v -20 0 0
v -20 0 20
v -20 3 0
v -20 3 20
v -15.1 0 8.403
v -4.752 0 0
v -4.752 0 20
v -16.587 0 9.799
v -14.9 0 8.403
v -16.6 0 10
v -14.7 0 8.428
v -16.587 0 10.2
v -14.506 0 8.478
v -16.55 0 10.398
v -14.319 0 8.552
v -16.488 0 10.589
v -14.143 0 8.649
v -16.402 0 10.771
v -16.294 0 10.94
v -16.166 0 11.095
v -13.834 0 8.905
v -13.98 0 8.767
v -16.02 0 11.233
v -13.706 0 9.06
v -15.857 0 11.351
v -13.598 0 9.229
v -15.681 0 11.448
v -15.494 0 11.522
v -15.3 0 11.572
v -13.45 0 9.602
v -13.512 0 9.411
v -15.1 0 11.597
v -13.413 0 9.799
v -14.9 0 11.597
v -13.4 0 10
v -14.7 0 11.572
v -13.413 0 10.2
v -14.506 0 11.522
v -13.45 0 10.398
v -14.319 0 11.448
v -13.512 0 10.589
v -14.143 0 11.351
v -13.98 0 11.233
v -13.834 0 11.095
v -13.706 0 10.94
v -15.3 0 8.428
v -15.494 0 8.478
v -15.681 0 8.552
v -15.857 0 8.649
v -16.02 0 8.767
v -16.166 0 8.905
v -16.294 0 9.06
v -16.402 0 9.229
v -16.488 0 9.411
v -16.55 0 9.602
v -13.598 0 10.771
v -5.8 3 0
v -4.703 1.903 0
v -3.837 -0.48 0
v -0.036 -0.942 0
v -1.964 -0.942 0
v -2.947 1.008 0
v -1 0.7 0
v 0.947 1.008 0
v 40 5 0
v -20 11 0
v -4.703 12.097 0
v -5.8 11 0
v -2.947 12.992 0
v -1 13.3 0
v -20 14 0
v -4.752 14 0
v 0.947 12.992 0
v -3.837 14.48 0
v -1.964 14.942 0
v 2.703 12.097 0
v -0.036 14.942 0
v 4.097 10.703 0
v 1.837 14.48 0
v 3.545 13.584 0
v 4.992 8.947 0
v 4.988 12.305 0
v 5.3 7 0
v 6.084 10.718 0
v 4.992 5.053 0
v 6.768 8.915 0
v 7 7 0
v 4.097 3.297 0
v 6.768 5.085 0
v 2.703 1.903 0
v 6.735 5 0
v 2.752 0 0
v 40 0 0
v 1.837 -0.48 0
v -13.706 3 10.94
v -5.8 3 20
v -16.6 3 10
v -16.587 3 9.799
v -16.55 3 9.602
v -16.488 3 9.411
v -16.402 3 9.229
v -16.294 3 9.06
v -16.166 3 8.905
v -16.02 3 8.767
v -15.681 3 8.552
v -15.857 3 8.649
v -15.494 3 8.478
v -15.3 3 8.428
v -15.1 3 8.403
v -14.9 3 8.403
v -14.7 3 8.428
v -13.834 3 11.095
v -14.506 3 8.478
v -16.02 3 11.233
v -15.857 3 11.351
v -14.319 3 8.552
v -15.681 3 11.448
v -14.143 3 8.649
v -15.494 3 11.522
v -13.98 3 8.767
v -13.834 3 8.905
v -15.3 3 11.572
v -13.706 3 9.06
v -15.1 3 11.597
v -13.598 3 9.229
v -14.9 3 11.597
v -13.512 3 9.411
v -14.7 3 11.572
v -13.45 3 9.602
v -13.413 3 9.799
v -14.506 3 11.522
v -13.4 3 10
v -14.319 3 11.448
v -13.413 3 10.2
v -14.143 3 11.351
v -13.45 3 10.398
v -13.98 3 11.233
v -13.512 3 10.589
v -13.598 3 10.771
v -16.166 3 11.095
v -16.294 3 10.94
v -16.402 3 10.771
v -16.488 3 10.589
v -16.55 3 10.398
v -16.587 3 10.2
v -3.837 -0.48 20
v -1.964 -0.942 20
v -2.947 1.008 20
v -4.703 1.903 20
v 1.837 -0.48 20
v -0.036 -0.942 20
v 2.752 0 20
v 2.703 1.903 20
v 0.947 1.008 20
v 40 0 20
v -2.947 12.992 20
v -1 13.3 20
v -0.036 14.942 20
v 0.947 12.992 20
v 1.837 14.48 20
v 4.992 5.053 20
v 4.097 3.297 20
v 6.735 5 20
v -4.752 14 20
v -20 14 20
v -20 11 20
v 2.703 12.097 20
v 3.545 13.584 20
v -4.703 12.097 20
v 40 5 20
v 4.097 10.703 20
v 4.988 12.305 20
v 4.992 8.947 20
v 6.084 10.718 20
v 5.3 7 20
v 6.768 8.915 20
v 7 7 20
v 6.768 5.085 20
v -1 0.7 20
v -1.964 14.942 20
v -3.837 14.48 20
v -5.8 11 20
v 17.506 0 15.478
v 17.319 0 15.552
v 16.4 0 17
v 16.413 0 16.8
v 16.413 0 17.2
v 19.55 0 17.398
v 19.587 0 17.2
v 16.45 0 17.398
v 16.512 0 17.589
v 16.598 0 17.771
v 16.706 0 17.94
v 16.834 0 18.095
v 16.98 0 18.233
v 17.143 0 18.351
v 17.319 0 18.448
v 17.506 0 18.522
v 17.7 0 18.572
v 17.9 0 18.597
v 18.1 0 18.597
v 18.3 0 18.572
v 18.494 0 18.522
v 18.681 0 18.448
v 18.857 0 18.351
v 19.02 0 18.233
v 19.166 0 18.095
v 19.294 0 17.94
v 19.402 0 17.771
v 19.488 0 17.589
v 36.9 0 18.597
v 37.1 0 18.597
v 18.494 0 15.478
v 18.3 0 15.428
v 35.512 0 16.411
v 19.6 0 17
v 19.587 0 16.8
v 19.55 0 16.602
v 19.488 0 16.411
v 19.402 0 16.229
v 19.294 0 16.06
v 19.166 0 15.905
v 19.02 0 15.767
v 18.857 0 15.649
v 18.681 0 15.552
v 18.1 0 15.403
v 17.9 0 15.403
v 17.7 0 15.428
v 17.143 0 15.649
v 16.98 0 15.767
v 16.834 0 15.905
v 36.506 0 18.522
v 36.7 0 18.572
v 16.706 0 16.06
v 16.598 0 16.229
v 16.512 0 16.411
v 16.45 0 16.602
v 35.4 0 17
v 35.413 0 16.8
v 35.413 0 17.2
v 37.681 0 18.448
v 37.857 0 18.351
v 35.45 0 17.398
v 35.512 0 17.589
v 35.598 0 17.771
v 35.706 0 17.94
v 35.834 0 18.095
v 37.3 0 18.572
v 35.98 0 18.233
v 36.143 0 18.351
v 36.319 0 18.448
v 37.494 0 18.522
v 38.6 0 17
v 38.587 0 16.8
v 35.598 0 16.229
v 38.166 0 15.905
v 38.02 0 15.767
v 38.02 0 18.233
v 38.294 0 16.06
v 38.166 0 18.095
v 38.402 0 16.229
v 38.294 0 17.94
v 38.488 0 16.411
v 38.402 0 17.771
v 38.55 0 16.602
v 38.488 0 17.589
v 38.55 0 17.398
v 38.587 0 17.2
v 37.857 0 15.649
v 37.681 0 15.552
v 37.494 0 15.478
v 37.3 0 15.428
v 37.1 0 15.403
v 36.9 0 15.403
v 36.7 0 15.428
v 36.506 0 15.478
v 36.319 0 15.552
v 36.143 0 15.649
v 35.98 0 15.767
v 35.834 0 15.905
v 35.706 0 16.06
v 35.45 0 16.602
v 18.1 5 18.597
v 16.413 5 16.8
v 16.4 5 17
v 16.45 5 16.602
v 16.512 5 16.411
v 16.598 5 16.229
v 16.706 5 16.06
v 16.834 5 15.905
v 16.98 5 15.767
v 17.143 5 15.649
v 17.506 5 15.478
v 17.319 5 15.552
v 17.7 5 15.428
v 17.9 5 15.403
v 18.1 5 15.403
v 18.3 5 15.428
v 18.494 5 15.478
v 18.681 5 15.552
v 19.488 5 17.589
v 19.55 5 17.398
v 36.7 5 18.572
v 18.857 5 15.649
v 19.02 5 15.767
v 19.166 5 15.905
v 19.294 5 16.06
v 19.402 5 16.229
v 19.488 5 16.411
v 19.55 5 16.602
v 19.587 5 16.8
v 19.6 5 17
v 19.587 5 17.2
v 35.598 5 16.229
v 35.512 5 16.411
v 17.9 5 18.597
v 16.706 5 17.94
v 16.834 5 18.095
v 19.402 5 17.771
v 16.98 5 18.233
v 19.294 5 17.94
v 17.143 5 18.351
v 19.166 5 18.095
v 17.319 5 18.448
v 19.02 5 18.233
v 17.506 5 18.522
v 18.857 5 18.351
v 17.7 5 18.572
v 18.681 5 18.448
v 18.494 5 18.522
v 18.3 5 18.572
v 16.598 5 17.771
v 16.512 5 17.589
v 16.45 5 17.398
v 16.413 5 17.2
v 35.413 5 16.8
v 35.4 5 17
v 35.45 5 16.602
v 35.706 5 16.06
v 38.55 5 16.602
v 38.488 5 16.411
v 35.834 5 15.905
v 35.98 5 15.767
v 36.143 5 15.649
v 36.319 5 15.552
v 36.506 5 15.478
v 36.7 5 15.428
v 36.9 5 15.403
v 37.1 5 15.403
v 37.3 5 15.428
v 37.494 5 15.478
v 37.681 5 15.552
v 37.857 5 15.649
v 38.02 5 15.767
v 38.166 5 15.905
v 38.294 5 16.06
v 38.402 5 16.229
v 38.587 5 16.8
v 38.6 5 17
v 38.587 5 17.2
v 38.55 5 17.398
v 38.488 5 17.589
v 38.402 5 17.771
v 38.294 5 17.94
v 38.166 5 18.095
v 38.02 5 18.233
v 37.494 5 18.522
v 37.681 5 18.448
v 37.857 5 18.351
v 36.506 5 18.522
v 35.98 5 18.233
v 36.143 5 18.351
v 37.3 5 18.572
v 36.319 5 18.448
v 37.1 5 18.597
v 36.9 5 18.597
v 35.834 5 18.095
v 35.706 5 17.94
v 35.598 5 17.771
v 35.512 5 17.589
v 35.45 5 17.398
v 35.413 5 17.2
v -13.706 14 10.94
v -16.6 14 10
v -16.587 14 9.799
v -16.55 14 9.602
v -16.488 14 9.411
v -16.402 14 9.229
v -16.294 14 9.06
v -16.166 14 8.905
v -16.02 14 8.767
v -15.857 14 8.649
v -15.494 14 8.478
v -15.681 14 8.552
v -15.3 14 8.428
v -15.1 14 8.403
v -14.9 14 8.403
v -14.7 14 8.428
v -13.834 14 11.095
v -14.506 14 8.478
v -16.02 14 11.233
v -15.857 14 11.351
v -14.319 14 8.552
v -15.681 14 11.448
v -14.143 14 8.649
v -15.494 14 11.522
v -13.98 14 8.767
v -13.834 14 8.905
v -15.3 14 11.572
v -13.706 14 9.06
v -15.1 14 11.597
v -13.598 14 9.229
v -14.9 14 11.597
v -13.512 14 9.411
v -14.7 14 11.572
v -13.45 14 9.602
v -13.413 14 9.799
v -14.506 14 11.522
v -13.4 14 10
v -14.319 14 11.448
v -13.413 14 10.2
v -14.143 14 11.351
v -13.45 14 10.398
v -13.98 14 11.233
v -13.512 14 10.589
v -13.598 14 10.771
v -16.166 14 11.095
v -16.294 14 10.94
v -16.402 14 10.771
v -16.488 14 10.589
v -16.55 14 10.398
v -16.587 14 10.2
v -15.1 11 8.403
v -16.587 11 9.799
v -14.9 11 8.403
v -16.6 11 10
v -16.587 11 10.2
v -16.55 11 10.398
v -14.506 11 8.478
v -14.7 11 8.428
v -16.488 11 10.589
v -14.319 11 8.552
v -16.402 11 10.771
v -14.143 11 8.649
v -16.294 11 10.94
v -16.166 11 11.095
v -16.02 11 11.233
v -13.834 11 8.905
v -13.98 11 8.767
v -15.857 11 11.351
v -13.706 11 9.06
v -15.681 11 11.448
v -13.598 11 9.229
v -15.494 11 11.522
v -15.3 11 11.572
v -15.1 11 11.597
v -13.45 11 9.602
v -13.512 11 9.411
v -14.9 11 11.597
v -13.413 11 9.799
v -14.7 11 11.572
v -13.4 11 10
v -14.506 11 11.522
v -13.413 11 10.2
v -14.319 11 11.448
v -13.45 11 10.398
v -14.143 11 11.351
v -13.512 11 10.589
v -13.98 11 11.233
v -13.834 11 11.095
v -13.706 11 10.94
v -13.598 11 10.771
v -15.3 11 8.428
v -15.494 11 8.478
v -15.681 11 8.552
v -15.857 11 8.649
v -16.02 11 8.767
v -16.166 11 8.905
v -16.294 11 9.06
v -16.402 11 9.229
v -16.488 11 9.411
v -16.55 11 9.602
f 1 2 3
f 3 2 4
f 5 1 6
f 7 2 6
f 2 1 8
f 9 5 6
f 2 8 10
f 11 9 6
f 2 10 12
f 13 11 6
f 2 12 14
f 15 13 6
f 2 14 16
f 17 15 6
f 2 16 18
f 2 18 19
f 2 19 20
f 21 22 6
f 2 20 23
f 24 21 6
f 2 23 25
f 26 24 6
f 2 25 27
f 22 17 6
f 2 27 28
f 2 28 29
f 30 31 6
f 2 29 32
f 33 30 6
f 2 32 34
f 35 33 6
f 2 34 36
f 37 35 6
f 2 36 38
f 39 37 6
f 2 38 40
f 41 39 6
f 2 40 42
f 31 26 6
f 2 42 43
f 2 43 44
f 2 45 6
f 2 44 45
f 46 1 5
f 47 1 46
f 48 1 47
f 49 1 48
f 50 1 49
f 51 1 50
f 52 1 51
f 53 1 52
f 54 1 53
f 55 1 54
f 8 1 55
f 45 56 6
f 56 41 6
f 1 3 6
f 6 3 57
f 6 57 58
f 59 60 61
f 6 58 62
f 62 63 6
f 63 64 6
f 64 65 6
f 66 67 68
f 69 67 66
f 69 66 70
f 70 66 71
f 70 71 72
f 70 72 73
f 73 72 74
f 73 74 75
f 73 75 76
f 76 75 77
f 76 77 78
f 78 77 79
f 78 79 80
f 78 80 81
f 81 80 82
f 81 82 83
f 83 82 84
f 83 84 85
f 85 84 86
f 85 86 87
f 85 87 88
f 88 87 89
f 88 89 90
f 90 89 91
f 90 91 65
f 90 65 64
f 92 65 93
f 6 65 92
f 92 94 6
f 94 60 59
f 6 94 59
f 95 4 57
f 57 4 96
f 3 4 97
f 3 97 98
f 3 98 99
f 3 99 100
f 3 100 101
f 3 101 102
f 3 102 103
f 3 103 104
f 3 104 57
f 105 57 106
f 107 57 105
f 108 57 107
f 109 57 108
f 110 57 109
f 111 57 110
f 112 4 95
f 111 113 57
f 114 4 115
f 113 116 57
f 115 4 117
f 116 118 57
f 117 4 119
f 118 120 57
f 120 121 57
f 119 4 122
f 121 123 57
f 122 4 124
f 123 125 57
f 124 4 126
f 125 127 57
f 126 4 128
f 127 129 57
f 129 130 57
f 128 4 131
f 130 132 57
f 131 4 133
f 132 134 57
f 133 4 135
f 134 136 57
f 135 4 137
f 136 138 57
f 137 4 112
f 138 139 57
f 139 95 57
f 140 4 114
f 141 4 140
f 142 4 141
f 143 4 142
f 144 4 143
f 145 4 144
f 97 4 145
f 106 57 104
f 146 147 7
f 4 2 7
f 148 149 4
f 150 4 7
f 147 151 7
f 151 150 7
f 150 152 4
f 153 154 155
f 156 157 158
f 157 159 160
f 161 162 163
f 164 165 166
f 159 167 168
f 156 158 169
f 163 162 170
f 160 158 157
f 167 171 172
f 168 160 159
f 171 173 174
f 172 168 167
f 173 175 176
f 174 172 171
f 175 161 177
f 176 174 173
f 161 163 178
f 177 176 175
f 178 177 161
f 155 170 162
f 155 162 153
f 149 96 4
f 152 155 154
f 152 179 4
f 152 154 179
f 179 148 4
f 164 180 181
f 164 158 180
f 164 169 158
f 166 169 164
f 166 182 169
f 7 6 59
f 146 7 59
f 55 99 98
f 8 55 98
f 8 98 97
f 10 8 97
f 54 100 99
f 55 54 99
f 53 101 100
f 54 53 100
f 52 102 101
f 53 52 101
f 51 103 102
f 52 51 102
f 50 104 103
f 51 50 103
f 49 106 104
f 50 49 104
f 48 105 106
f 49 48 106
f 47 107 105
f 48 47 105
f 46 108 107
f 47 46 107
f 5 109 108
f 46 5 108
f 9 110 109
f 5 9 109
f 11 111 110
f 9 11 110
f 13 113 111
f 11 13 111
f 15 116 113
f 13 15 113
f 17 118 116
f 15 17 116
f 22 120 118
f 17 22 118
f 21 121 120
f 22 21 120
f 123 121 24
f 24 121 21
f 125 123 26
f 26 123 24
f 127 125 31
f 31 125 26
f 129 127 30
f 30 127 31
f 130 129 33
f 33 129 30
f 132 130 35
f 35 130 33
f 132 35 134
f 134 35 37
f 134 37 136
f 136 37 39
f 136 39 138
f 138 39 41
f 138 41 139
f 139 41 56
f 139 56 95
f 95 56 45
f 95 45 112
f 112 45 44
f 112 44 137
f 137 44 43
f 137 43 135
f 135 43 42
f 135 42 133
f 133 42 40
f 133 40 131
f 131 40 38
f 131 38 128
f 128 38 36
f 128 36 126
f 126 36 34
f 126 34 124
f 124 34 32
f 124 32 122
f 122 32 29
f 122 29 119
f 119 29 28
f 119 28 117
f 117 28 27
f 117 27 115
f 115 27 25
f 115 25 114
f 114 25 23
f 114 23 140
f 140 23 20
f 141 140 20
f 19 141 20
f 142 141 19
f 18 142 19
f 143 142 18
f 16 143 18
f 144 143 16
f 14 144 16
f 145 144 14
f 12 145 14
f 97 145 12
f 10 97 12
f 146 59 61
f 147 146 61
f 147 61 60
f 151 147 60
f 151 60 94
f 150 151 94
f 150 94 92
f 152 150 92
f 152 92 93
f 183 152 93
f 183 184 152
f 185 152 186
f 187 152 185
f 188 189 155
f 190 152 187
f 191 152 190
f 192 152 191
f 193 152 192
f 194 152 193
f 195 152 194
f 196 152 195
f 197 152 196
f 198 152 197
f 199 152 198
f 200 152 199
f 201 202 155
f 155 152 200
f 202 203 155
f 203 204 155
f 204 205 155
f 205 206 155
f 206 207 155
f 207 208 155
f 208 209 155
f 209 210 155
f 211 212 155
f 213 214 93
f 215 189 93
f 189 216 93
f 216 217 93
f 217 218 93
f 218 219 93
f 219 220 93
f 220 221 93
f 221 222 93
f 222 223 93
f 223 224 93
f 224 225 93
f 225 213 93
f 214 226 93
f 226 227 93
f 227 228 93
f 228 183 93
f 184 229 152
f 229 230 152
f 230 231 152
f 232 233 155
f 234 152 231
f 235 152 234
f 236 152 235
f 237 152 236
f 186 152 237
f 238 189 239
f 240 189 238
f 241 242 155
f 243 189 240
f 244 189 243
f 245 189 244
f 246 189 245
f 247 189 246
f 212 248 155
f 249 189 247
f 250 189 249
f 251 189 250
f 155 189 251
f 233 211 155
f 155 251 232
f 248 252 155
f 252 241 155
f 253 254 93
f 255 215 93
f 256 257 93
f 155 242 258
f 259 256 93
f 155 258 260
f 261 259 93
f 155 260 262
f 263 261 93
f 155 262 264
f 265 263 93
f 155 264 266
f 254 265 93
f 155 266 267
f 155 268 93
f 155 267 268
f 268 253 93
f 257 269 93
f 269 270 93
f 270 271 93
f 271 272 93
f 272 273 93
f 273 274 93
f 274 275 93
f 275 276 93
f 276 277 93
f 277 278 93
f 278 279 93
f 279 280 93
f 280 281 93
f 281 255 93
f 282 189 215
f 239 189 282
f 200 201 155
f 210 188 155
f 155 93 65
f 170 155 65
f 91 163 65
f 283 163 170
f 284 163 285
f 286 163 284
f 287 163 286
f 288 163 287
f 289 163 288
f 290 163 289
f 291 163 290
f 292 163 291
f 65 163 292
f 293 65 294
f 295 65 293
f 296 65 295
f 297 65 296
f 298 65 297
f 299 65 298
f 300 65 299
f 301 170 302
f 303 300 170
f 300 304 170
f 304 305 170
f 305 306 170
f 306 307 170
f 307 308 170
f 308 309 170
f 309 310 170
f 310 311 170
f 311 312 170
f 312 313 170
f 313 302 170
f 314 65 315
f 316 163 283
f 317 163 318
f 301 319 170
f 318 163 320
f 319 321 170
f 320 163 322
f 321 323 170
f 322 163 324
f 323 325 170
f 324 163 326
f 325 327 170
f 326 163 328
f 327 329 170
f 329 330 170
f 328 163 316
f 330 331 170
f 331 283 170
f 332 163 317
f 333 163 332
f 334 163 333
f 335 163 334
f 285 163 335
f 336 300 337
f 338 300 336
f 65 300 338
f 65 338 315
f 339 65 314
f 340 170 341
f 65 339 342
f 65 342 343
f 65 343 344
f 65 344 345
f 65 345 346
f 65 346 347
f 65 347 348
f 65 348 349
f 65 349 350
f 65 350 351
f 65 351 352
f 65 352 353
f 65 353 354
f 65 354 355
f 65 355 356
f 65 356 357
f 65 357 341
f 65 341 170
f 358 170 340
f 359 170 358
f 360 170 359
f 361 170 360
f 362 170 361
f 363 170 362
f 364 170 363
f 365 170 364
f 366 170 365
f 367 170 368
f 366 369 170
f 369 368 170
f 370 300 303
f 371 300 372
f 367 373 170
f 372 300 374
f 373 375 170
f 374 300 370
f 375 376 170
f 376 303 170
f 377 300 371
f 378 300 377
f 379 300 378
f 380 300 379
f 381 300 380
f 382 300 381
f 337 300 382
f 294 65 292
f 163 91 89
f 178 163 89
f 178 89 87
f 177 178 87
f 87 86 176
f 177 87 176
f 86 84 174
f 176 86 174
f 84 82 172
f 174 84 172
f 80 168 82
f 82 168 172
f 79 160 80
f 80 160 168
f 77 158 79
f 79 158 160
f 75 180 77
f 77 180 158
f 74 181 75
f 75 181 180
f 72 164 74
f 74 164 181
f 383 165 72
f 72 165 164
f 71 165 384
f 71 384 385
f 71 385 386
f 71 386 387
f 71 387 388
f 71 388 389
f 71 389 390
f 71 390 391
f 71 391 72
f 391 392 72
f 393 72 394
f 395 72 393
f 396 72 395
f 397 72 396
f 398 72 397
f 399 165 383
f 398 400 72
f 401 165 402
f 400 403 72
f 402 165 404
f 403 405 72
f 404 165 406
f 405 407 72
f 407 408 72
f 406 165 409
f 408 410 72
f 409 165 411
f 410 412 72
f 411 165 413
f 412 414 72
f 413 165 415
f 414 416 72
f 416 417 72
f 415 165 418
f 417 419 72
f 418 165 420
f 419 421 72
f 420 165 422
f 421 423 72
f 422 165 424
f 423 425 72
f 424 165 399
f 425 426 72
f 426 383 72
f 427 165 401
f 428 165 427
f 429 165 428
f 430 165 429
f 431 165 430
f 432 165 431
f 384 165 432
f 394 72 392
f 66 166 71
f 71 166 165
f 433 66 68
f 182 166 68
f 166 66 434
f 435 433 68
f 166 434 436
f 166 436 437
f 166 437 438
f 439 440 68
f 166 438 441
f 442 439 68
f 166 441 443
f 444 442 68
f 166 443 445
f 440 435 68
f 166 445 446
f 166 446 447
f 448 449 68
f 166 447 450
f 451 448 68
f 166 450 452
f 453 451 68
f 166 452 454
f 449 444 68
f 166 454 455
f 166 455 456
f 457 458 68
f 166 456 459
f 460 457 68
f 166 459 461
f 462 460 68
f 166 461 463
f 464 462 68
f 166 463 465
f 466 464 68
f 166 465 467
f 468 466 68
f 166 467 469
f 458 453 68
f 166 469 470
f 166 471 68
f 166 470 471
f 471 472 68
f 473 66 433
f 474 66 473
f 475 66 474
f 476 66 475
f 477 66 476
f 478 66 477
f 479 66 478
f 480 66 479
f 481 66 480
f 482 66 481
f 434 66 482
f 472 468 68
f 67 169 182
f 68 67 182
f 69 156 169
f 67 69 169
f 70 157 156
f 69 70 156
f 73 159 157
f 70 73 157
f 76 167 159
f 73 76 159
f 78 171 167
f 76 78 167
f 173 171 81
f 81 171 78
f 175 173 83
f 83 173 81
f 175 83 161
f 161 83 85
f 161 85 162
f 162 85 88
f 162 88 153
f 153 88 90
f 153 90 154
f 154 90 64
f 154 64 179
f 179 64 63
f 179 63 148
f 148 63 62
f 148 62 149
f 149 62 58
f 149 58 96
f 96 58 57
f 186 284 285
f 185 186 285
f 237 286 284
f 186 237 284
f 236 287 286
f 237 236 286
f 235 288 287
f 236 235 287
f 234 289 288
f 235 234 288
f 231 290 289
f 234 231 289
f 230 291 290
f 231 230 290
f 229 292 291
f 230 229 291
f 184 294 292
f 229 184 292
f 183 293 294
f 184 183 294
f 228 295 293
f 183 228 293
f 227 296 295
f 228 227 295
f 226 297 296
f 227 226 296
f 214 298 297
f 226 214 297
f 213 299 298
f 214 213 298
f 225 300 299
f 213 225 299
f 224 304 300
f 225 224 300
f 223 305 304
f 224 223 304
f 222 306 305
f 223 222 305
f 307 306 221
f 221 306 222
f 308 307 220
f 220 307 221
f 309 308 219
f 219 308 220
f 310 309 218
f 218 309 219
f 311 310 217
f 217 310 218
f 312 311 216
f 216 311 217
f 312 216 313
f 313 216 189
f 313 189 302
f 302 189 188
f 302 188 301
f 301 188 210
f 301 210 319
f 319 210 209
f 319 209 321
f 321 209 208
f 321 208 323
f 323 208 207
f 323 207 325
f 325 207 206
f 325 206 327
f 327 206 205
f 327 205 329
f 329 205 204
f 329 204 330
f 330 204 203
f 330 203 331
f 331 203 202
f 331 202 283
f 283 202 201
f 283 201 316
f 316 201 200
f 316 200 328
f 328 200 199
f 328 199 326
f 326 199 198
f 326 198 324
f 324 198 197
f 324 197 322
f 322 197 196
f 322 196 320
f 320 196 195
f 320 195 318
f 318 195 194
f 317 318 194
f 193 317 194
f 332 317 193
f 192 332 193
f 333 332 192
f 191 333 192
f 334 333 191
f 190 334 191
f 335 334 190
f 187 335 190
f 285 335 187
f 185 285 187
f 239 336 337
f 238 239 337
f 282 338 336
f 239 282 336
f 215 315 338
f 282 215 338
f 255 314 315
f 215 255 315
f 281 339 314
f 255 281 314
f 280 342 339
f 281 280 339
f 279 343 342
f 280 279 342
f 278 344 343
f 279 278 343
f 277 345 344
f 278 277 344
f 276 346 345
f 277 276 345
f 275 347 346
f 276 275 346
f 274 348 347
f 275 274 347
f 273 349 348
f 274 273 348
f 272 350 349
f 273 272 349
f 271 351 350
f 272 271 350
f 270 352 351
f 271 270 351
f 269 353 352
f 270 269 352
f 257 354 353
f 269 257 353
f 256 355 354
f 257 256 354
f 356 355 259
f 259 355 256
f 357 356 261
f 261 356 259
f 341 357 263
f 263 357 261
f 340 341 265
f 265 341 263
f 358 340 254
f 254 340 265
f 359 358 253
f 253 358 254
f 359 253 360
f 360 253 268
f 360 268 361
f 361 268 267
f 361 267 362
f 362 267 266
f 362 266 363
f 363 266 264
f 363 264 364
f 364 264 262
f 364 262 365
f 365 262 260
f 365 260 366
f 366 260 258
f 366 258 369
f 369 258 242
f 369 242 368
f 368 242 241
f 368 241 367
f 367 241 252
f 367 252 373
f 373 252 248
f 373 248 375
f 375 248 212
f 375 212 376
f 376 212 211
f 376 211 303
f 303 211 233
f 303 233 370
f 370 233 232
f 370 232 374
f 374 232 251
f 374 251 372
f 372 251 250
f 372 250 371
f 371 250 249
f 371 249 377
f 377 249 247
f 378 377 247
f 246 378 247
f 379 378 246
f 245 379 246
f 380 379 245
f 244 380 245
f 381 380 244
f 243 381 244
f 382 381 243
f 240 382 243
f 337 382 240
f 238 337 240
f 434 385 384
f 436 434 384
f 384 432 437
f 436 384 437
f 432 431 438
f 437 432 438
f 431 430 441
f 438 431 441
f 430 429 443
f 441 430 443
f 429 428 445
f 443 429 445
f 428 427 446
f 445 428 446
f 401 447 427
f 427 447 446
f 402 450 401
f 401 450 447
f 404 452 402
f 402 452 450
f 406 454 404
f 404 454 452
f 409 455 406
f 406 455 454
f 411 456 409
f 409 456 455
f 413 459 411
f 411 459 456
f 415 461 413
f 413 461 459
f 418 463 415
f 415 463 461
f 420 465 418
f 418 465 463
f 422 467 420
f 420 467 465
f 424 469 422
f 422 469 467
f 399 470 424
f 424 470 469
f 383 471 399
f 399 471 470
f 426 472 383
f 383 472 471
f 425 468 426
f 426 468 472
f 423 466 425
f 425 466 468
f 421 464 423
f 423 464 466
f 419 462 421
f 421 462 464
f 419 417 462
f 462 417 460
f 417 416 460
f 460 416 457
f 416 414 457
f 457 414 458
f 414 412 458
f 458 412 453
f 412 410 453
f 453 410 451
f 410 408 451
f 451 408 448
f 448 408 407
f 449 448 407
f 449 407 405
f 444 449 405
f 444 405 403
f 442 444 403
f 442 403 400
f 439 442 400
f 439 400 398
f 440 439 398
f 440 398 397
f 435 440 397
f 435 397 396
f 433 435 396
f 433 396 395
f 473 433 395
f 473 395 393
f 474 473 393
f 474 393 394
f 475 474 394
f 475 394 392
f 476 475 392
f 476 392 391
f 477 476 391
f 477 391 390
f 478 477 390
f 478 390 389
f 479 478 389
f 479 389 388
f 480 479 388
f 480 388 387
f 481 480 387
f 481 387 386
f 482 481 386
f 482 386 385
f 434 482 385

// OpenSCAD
//design file for Fab-DLP Z-Axis endstop Holder 
//part of thew Fab-DLP project https://github.com/fablab-leoben/Fab-dlp
difference () {
union (){
cube ([40,5,20]);
translate ([-1,7,0])cylinder(r=8,h=20);
translate ([-20,11,0]) cube ([20,3,20]);
translate ([-20,0,0]) cube ([20,3,20]);

}
translate ([-1,7,0])cylinder(r=6.3,h=20);
translate ([-20,3,0]) cube ([20,8,20]);
translate ([18,-20,17]) rotate ([-90,0,0])cylinder (r=1.6,h=100,$fn=50);
translate ([37,-20,17]) rotate ([-90,0,0])cylinder (r=1.6,h=100,$fn=50);
translate ([-15,-20,10]) rotate ([-90,0,0])cylinder (r=1.6,h=100,$fn=50);
}
